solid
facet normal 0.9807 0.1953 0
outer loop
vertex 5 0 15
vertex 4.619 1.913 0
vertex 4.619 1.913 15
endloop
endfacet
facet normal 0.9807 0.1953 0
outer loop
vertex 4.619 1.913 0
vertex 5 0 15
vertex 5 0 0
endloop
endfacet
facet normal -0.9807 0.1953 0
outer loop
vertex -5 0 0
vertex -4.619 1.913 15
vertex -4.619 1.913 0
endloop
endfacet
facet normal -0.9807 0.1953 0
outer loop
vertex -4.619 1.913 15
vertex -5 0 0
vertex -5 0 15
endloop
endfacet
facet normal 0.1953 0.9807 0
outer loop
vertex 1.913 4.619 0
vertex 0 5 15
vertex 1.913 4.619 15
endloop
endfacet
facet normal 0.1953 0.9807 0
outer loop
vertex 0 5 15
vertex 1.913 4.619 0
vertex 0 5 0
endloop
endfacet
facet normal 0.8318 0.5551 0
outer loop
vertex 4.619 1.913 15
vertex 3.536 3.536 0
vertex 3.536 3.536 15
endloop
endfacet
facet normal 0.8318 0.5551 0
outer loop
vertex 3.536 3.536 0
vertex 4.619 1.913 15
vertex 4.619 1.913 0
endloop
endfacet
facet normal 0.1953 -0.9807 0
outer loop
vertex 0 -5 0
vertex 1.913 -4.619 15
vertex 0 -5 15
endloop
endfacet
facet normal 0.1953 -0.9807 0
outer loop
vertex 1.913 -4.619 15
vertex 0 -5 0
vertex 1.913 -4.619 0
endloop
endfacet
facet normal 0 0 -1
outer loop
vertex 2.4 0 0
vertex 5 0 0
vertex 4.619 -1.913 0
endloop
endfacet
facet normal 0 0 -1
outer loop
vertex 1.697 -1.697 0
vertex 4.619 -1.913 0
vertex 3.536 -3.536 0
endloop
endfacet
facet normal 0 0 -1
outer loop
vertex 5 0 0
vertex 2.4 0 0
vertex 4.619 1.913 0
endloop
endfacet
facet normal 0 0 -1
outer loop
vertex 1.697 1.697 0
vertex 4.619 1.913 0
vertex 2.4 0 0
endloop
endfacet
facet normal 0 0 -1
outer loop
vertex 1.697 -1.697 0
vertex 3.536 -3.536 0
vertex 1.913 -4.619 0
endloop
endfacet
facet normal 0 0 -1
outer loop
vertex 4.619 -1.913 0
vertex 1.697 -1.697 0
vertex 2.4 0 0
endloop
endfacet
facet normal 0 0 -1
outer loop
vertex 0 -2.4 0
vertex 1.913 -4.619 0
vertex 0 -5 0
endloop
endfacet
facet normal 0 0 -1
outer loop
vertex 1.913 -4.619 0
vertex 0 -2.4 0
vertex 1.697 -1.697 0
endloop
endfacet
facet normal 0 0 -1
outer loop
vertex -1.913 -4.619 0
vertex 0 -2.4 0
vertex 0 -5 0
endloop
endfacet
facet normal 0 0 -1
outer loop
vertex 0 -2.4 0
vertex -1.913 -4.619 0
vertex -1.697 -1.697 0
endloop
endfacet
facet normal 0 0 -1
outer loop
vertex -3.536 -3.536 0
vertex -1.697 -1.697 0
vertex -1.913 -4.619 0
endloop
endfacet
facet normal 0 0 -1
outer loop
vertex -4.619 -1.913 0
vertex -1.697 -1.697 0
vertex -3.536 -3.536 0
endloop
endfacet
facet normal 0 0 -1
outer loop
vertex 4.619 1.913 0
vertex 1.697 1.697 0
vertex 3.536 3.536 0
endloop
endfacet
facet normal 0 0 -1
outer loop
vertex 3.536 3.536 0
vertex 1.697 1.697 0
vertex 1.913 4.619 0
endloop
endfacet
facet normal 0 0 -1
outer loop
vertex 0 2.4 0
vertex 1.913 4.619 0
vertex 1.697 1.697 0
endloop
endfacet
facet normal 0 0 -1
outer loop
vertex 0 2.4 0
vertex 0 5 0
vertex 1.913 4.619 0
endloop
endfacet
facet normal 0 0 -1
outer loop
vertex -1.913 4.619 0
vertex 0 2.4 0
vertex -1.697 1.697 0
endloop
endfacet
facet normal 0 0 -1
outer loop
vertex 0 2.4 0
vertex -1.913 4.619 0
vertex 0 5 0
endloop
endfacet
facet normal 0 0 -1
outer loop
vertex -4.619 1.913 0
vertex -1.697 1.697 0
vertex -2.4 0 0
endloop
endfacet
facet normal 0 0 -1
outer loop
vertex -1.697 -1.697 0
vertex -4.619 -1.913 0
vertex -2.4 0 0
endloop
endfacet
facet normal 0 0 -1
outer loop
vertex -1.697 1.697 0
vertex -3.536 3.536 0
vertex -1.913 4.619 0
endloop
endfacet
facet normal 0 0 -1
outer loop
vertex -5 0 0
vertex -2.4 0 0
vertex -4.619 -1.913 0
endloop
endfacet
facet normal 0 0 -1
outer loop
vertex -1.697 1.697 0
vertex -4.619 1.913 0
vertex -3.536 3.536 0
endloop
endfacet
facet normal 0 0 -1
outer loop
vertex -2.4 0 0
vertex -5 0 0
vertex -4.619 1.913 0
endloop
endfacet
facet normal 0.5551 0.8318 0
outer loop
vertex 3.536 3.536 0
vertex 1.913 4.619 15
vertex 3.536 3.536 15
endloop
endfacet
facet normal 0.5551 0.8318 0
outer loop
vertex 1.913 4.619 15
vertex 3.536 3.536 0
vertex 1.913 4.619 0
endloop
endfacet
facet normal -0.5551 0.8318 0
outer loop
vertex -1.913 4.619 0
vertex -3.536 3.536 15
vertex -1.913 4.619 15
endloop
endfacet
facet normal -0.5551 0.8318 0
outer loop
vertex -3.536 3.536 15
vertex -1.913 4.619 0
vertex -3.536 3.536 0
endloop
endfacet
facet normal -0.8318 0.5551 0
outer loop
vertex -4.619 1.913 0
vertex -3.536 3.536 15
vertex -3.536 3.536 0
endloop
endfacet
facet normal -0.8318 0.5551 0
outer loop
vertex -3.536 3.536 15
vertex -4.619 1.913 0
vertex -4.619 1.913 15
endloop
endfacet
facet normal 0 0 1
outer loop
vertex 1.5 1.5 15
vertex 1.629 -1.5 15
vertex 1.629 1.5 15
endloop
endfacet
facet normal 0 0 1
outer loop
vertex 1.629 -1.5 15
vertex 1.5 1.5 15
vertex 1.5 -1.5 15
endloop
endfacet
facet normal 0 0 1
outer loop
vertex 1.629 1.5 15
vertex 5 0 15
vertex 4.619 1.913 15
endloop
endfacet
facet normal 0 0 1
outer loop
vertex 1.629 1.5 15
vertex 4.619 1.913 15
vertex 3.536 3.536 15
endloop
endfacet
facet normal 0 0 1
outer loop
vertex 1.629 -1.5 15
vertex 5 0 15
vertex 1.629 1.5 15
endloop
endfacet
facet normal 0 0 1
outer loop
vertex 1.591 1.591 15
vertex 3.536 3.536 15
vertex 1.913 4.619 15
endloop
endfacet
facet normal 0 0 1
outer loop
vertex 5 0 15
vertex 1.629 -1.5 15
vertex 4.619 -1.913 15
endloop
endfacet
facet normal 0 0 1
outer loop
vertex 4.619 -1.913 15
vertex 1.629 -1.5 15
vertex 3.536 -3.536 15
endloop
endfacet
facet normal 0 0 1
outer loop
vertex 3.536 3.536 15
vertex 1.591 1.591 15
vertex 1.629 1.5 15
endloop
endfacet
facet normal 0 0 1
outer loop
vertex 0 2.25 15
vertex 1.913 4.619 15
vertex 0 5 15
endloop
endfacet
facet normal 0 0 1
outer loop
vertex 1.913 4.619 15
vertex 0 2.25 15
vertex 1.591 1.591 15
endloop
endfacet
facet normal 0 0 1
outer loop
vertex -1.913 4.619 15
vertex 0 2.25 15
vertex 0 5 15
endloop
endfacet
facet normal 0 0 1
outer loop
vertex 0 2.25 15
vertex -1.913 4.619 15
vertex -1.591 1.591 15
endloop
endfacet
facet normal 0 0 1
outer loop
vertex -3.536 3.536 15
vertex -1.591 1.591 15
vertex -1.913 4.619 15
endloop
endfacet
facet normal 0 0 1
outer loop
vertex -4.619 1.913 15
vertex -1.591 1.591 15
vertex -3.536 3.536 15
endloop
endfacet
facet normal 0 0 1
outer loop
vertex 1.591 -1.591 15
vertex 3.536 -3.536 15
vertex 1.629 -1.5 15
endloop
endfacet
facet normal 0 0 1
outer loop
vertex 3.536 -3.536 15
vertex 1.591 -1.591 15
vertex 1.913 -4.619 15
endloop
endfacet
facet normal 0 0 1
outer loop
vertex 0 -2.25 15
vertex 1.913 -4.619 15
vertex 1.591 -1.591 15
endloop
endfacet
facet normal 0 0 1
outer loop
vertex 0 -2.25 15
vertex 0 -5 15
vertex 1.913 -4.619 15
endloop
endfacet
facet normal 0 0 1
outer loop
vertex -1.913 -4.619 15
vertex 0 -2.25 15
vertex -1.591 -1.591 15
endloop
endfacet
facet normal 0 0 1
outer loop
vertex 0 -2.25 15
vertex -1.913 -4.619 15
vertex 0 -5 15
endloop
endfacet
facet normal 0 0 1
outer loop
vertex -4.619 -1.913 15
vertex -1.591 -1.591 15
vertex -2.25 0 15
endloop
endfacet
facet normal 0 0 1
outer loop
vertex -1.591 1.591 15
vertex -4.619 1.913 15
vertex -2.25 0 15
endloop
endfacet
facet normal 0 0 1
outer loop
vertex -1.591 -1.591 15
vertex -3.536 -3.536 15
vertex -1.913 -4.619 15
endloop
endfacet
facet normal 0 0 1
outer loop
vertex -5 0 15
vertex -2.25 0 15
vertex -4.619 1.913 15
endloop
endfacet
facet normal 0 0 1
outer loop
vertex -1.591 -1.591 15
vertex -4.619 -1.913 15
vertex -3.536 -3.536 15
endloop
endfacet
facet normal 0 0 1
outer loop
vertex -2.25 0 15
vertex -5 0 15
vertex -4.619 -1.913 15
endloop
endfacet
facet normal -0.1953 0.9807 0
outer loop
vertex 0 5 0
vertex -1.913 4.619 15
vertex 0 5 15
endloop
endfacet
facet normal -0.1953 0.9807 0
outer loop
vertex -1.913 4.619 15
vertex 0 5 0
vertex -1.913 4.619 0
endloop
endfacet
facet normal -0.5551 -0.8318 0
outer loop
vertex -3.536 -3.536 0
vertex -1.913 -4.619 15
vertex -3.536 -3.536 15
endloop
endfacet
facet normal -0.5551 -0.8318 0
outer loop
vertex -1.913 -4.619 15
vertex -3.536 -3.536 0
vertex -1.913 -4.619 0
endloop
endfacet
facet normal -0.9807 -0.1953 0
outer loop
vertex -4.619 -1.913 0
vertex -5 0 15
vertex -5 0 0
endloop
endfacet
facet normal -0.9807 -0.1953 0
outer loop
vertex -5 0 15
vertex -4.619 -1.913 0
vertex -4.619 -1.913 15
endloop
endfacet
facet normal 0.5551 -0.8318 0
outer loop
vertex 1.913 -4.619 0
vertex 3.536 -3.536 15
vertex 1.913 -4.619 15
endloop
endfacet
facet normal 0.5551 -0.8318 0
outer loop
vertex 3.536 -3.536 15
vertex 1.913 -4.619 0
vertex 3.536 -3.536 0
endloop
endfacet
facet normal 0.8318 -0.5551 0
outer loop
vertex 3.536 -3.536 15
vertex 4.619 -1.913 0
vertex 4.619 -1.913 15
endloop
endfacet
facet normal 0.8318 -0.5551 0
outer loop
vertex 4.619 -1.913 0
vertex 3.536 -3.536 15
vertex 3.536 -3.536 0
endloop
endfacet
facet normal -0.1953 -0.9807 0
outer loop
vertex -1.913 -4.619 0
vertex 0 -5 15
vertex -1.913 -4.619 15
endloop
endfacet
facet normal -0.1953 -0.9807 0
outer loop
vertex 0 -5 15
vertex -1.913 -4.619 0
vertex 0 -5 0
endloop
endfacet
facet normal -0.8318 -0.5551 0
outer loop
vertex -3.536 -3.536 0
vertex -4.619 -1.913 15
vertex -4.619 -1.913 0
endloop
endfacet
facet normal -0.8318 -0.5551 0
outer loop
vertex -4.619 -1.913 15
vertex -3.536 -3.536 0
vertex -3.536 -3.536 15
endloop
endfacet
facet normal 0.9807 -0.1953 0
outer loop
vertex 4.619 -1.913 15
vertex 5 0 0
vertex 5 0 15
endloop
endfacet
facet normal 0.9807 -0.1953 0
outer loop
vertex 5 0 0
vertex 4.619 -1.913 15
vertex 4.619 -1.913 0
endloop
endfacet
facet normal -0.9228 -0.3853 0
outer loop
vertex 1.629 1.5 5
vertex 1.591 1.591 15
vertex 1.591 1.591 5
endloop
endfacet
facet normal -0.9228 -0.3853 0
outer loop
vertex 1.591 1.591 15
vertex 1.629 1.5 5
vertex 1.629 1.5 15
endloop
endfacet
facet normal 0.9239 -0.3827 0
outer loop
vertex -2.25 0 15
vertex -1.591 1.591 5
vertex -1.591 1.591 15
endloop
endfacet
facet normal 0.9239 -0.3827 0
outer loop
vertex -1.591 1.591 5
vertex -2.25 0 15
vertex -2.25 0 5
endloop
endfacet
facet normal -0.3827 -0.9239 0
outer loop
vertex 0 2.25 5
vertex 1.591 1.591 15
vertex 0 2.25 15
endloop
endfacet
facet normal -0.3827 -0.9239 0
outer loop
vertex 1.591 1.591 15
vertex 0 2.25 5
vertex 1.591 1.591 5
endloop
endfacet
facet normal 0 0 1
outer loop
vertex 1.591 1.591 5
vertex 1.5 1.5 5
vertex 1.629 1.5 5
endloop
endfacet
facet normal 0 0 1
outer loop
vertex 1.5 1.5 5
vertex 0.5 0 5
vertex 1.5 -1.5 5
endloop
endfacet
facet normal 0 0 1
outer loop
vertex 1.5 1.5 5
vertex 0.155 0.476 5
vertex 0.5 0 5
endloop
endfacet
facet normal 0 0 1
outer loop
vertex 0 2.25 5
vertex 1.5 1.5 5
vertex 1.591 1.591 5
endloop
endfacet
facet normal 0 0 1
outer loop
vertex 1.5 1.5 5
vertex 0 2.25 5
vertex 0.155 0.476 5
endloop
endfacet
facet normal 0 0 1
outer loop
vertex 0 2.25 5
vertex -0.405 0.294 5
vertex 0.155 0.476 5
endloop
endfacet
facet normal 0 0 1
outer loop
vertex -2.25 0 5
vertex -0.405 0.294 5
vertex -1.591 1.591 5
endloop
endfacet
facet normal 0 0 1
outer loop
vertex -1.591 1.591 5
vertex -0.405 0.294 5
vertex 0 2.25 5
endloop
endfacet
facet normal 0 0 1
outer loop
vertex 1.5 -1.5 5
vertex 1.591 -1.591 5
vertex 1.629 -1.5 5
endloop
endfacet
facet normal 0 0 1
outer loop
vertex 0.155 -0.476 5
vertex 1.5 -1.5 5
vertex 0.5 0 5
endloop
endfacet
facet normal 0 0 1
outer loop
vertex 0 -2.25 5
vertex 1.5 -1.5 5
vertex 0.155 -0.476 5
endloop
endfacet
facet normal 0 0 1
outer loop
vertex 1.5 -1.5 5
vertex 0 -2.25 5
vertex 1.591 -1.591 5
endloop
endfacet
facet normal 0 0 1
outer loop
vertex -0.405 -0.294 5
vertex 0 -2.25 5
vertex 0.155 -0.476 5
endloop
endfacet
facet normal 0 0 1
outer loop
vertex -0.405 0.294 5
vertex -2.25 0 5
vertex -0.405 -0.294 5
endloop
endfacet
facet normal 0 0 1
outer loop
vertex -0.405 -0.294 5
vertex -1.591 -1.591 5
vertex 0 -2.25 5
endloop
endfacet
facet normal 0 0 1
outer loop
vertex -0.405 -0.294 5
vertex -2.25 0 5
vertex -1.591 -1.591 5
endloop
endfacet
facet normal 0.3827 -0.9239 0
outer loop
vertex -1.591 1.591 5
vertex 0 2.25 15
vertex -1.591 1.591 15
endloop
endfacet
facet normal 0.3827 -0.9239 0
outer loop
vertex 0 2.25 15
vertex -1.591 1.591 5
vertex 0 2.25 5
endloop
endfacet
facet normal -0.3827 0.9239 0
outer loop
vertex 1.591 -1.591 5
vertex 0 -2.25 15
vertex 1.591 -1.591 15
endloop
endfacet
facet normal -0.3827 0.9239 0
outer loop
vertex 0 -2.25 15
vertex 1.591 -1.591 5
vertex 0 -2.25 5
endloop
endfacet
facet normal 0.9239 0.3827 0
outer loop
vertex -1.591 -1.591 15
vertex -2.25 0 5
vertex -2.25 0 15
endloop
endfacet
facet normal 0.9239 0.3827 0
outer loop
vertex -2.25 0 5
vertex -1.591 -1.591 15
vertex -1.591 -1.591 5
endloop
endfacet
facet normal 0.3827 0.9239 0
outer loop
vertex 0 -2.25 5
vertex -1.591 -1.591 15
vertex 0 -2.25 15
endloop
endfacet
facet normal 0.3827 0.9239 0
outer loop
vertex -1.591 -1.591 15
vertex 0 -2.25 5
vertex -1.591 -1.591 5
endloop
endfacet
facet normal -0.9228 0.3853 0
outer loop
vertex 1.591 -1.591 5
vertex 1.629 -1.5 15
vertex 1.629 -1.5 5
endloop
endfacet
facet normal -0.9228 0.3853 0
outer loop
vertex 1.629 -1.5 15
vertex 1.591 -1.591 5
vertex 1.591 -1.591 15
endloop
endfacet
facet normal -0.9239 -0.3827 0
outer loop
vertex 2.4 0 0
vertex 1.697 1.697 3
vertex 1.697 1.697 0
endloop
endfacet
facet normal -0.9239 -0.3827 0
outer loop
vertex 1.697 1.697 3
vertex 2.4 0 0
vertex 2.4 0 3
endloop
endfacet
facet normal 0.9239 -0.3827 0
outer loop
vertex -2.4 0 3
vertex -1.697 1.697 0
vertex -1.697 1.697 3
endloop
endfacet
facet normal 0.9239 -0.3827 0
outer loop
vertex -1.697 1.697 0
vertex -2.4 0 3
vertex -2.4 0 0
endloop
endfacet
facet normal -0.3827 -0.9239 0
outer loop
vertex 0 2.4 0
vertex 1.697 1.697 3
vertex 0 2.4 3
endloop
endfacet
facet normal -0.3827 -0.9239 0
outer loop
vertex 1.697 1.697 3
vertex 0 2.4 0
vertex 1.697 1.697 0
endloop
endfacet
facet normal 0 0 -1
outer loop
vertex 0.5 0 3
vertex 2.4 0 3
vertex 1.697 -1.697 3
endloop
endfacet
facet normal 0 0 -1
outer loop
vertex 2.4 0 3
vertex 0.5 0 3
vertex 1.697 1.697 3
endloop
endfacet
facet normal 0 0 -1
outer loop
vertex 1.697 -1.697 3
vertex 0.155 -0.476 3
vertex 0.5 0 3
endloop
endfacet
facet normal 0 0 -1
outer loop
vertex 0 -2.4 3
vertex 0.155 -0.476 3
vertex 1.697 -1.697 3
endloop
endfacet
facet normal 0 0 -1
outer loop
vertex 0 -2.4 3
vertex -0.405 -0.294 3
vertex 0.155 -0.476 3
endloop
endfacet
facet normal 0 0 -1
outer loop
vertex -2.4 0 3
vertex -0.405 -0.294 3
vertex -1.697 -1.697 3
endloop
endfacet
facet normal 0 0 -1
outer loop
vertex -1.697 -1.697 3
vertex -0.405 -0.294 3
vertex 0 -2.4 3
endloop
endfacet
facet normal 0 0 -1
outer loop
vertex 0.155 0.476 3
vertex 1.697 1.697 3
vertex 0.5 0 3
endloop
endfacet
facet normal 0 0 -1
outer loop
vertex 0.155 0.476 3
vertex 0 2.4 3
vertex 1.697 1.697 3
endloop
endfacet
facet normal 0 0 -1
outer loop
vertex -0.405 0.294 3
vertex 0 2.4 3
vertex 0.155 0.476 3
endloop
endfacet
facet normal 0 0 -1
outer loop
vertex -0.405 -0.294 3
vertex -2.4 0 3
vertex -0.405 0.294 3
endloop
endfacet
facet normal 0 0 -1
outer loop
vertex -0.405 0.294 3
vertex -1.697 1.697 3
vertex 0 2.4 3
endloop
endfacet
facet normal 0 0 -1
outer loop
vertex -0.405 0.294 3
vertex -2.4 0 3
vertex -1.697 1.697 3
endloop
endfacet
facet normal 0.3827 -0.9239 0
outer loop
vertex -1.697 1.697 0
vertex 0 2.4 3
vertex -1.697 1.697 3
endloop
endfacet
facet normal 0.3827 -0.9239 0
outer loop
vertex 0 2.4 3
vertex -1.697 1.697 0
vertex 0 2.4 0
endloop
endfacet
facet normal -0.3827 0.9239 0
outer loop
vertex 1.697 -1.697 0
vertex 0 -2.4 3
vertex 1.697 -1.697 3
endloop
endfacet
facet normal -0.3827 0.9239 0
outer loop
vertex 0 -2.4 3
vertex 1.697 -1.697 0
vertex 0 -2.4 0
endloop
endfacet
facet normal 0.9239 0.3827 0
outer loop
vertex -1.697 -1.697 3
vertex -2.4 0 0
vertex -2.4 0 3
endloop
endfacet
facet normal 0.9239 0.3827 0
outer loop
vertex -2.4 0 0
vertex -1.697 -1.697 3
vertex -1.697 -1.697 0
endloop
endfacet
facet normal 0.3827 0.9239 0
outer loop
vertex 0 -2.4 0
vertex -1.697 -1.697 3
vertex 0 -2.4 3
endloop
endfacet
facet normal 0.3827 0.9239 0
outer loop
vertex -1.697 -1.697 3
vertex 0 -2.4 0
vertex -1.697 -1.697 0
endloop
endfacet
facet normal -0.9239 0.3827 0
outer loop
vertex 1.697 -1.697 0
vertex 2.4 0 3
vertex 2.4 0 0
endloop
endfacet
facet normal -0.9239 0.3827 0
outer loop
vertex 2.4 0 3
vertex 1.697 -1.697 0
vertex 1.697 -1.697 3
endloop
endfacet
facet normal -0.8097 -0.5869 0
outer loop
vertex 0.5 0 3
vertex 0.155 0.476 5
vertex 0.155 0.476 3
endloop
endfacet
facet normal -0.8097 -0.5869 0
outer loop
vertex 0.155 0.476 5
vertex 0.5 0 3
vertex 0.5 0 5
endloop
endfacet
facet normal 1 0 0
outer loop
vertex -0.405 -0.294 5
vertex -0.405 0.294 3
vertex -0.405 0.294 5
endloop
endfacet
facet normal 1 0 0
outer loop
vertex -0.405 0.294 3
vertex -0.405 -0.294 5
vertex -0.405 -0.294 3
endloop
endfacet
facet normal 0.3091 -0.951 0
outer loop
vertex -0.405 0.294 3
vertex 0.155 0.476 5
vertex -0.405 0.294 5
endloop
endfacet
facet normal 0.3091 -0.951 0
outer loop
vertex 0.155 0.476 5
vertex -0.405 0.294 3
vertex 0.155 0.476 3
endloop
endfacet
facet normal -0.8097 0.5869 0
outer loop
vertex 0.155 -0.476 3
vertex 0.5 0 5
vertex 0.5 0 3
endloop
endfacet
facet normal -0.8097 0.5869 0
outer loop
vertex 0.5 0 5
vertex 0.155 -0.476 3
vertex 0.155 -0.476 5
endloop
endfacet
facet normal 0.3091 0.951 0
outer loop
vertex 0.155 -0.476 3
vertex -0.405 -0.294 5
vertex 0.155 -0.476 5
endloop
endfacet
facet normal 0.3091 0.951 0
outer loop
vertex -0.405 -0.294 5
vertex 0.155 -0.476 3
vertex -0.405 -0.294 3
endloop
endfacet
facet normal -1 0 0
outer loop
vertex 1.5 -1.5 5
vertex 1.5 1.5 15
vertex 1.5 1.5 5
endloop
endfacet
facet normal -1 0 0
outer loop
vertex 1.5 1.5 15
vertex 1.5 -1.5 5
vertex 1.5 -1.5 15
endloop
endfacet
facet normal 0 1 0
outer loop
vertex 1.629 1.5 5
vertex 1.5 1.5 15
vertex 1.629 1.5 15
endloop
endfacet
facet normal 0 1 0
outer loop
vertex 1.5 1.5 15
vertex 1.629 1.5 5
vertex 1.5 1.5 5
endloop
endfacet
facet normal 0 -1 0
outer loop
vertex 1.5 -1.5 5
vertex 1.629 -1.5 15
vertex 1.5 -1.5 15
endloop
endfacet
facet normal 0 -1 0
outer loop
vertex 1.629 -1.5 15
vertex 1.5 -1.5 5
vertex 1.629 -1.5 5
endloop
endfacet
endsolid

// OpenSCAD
union() {
difference() {
  cylinder(15, d=10, true);
  translate([0,0,5])
    cylinder(12, d=4.5, true);
  translate([0,0,-1])
    cylinder(4, d=4.8, true);
  cylinder(15,d=1,true);
}
  translate([2,0,10])
    cube([1,3,10], true);
}
